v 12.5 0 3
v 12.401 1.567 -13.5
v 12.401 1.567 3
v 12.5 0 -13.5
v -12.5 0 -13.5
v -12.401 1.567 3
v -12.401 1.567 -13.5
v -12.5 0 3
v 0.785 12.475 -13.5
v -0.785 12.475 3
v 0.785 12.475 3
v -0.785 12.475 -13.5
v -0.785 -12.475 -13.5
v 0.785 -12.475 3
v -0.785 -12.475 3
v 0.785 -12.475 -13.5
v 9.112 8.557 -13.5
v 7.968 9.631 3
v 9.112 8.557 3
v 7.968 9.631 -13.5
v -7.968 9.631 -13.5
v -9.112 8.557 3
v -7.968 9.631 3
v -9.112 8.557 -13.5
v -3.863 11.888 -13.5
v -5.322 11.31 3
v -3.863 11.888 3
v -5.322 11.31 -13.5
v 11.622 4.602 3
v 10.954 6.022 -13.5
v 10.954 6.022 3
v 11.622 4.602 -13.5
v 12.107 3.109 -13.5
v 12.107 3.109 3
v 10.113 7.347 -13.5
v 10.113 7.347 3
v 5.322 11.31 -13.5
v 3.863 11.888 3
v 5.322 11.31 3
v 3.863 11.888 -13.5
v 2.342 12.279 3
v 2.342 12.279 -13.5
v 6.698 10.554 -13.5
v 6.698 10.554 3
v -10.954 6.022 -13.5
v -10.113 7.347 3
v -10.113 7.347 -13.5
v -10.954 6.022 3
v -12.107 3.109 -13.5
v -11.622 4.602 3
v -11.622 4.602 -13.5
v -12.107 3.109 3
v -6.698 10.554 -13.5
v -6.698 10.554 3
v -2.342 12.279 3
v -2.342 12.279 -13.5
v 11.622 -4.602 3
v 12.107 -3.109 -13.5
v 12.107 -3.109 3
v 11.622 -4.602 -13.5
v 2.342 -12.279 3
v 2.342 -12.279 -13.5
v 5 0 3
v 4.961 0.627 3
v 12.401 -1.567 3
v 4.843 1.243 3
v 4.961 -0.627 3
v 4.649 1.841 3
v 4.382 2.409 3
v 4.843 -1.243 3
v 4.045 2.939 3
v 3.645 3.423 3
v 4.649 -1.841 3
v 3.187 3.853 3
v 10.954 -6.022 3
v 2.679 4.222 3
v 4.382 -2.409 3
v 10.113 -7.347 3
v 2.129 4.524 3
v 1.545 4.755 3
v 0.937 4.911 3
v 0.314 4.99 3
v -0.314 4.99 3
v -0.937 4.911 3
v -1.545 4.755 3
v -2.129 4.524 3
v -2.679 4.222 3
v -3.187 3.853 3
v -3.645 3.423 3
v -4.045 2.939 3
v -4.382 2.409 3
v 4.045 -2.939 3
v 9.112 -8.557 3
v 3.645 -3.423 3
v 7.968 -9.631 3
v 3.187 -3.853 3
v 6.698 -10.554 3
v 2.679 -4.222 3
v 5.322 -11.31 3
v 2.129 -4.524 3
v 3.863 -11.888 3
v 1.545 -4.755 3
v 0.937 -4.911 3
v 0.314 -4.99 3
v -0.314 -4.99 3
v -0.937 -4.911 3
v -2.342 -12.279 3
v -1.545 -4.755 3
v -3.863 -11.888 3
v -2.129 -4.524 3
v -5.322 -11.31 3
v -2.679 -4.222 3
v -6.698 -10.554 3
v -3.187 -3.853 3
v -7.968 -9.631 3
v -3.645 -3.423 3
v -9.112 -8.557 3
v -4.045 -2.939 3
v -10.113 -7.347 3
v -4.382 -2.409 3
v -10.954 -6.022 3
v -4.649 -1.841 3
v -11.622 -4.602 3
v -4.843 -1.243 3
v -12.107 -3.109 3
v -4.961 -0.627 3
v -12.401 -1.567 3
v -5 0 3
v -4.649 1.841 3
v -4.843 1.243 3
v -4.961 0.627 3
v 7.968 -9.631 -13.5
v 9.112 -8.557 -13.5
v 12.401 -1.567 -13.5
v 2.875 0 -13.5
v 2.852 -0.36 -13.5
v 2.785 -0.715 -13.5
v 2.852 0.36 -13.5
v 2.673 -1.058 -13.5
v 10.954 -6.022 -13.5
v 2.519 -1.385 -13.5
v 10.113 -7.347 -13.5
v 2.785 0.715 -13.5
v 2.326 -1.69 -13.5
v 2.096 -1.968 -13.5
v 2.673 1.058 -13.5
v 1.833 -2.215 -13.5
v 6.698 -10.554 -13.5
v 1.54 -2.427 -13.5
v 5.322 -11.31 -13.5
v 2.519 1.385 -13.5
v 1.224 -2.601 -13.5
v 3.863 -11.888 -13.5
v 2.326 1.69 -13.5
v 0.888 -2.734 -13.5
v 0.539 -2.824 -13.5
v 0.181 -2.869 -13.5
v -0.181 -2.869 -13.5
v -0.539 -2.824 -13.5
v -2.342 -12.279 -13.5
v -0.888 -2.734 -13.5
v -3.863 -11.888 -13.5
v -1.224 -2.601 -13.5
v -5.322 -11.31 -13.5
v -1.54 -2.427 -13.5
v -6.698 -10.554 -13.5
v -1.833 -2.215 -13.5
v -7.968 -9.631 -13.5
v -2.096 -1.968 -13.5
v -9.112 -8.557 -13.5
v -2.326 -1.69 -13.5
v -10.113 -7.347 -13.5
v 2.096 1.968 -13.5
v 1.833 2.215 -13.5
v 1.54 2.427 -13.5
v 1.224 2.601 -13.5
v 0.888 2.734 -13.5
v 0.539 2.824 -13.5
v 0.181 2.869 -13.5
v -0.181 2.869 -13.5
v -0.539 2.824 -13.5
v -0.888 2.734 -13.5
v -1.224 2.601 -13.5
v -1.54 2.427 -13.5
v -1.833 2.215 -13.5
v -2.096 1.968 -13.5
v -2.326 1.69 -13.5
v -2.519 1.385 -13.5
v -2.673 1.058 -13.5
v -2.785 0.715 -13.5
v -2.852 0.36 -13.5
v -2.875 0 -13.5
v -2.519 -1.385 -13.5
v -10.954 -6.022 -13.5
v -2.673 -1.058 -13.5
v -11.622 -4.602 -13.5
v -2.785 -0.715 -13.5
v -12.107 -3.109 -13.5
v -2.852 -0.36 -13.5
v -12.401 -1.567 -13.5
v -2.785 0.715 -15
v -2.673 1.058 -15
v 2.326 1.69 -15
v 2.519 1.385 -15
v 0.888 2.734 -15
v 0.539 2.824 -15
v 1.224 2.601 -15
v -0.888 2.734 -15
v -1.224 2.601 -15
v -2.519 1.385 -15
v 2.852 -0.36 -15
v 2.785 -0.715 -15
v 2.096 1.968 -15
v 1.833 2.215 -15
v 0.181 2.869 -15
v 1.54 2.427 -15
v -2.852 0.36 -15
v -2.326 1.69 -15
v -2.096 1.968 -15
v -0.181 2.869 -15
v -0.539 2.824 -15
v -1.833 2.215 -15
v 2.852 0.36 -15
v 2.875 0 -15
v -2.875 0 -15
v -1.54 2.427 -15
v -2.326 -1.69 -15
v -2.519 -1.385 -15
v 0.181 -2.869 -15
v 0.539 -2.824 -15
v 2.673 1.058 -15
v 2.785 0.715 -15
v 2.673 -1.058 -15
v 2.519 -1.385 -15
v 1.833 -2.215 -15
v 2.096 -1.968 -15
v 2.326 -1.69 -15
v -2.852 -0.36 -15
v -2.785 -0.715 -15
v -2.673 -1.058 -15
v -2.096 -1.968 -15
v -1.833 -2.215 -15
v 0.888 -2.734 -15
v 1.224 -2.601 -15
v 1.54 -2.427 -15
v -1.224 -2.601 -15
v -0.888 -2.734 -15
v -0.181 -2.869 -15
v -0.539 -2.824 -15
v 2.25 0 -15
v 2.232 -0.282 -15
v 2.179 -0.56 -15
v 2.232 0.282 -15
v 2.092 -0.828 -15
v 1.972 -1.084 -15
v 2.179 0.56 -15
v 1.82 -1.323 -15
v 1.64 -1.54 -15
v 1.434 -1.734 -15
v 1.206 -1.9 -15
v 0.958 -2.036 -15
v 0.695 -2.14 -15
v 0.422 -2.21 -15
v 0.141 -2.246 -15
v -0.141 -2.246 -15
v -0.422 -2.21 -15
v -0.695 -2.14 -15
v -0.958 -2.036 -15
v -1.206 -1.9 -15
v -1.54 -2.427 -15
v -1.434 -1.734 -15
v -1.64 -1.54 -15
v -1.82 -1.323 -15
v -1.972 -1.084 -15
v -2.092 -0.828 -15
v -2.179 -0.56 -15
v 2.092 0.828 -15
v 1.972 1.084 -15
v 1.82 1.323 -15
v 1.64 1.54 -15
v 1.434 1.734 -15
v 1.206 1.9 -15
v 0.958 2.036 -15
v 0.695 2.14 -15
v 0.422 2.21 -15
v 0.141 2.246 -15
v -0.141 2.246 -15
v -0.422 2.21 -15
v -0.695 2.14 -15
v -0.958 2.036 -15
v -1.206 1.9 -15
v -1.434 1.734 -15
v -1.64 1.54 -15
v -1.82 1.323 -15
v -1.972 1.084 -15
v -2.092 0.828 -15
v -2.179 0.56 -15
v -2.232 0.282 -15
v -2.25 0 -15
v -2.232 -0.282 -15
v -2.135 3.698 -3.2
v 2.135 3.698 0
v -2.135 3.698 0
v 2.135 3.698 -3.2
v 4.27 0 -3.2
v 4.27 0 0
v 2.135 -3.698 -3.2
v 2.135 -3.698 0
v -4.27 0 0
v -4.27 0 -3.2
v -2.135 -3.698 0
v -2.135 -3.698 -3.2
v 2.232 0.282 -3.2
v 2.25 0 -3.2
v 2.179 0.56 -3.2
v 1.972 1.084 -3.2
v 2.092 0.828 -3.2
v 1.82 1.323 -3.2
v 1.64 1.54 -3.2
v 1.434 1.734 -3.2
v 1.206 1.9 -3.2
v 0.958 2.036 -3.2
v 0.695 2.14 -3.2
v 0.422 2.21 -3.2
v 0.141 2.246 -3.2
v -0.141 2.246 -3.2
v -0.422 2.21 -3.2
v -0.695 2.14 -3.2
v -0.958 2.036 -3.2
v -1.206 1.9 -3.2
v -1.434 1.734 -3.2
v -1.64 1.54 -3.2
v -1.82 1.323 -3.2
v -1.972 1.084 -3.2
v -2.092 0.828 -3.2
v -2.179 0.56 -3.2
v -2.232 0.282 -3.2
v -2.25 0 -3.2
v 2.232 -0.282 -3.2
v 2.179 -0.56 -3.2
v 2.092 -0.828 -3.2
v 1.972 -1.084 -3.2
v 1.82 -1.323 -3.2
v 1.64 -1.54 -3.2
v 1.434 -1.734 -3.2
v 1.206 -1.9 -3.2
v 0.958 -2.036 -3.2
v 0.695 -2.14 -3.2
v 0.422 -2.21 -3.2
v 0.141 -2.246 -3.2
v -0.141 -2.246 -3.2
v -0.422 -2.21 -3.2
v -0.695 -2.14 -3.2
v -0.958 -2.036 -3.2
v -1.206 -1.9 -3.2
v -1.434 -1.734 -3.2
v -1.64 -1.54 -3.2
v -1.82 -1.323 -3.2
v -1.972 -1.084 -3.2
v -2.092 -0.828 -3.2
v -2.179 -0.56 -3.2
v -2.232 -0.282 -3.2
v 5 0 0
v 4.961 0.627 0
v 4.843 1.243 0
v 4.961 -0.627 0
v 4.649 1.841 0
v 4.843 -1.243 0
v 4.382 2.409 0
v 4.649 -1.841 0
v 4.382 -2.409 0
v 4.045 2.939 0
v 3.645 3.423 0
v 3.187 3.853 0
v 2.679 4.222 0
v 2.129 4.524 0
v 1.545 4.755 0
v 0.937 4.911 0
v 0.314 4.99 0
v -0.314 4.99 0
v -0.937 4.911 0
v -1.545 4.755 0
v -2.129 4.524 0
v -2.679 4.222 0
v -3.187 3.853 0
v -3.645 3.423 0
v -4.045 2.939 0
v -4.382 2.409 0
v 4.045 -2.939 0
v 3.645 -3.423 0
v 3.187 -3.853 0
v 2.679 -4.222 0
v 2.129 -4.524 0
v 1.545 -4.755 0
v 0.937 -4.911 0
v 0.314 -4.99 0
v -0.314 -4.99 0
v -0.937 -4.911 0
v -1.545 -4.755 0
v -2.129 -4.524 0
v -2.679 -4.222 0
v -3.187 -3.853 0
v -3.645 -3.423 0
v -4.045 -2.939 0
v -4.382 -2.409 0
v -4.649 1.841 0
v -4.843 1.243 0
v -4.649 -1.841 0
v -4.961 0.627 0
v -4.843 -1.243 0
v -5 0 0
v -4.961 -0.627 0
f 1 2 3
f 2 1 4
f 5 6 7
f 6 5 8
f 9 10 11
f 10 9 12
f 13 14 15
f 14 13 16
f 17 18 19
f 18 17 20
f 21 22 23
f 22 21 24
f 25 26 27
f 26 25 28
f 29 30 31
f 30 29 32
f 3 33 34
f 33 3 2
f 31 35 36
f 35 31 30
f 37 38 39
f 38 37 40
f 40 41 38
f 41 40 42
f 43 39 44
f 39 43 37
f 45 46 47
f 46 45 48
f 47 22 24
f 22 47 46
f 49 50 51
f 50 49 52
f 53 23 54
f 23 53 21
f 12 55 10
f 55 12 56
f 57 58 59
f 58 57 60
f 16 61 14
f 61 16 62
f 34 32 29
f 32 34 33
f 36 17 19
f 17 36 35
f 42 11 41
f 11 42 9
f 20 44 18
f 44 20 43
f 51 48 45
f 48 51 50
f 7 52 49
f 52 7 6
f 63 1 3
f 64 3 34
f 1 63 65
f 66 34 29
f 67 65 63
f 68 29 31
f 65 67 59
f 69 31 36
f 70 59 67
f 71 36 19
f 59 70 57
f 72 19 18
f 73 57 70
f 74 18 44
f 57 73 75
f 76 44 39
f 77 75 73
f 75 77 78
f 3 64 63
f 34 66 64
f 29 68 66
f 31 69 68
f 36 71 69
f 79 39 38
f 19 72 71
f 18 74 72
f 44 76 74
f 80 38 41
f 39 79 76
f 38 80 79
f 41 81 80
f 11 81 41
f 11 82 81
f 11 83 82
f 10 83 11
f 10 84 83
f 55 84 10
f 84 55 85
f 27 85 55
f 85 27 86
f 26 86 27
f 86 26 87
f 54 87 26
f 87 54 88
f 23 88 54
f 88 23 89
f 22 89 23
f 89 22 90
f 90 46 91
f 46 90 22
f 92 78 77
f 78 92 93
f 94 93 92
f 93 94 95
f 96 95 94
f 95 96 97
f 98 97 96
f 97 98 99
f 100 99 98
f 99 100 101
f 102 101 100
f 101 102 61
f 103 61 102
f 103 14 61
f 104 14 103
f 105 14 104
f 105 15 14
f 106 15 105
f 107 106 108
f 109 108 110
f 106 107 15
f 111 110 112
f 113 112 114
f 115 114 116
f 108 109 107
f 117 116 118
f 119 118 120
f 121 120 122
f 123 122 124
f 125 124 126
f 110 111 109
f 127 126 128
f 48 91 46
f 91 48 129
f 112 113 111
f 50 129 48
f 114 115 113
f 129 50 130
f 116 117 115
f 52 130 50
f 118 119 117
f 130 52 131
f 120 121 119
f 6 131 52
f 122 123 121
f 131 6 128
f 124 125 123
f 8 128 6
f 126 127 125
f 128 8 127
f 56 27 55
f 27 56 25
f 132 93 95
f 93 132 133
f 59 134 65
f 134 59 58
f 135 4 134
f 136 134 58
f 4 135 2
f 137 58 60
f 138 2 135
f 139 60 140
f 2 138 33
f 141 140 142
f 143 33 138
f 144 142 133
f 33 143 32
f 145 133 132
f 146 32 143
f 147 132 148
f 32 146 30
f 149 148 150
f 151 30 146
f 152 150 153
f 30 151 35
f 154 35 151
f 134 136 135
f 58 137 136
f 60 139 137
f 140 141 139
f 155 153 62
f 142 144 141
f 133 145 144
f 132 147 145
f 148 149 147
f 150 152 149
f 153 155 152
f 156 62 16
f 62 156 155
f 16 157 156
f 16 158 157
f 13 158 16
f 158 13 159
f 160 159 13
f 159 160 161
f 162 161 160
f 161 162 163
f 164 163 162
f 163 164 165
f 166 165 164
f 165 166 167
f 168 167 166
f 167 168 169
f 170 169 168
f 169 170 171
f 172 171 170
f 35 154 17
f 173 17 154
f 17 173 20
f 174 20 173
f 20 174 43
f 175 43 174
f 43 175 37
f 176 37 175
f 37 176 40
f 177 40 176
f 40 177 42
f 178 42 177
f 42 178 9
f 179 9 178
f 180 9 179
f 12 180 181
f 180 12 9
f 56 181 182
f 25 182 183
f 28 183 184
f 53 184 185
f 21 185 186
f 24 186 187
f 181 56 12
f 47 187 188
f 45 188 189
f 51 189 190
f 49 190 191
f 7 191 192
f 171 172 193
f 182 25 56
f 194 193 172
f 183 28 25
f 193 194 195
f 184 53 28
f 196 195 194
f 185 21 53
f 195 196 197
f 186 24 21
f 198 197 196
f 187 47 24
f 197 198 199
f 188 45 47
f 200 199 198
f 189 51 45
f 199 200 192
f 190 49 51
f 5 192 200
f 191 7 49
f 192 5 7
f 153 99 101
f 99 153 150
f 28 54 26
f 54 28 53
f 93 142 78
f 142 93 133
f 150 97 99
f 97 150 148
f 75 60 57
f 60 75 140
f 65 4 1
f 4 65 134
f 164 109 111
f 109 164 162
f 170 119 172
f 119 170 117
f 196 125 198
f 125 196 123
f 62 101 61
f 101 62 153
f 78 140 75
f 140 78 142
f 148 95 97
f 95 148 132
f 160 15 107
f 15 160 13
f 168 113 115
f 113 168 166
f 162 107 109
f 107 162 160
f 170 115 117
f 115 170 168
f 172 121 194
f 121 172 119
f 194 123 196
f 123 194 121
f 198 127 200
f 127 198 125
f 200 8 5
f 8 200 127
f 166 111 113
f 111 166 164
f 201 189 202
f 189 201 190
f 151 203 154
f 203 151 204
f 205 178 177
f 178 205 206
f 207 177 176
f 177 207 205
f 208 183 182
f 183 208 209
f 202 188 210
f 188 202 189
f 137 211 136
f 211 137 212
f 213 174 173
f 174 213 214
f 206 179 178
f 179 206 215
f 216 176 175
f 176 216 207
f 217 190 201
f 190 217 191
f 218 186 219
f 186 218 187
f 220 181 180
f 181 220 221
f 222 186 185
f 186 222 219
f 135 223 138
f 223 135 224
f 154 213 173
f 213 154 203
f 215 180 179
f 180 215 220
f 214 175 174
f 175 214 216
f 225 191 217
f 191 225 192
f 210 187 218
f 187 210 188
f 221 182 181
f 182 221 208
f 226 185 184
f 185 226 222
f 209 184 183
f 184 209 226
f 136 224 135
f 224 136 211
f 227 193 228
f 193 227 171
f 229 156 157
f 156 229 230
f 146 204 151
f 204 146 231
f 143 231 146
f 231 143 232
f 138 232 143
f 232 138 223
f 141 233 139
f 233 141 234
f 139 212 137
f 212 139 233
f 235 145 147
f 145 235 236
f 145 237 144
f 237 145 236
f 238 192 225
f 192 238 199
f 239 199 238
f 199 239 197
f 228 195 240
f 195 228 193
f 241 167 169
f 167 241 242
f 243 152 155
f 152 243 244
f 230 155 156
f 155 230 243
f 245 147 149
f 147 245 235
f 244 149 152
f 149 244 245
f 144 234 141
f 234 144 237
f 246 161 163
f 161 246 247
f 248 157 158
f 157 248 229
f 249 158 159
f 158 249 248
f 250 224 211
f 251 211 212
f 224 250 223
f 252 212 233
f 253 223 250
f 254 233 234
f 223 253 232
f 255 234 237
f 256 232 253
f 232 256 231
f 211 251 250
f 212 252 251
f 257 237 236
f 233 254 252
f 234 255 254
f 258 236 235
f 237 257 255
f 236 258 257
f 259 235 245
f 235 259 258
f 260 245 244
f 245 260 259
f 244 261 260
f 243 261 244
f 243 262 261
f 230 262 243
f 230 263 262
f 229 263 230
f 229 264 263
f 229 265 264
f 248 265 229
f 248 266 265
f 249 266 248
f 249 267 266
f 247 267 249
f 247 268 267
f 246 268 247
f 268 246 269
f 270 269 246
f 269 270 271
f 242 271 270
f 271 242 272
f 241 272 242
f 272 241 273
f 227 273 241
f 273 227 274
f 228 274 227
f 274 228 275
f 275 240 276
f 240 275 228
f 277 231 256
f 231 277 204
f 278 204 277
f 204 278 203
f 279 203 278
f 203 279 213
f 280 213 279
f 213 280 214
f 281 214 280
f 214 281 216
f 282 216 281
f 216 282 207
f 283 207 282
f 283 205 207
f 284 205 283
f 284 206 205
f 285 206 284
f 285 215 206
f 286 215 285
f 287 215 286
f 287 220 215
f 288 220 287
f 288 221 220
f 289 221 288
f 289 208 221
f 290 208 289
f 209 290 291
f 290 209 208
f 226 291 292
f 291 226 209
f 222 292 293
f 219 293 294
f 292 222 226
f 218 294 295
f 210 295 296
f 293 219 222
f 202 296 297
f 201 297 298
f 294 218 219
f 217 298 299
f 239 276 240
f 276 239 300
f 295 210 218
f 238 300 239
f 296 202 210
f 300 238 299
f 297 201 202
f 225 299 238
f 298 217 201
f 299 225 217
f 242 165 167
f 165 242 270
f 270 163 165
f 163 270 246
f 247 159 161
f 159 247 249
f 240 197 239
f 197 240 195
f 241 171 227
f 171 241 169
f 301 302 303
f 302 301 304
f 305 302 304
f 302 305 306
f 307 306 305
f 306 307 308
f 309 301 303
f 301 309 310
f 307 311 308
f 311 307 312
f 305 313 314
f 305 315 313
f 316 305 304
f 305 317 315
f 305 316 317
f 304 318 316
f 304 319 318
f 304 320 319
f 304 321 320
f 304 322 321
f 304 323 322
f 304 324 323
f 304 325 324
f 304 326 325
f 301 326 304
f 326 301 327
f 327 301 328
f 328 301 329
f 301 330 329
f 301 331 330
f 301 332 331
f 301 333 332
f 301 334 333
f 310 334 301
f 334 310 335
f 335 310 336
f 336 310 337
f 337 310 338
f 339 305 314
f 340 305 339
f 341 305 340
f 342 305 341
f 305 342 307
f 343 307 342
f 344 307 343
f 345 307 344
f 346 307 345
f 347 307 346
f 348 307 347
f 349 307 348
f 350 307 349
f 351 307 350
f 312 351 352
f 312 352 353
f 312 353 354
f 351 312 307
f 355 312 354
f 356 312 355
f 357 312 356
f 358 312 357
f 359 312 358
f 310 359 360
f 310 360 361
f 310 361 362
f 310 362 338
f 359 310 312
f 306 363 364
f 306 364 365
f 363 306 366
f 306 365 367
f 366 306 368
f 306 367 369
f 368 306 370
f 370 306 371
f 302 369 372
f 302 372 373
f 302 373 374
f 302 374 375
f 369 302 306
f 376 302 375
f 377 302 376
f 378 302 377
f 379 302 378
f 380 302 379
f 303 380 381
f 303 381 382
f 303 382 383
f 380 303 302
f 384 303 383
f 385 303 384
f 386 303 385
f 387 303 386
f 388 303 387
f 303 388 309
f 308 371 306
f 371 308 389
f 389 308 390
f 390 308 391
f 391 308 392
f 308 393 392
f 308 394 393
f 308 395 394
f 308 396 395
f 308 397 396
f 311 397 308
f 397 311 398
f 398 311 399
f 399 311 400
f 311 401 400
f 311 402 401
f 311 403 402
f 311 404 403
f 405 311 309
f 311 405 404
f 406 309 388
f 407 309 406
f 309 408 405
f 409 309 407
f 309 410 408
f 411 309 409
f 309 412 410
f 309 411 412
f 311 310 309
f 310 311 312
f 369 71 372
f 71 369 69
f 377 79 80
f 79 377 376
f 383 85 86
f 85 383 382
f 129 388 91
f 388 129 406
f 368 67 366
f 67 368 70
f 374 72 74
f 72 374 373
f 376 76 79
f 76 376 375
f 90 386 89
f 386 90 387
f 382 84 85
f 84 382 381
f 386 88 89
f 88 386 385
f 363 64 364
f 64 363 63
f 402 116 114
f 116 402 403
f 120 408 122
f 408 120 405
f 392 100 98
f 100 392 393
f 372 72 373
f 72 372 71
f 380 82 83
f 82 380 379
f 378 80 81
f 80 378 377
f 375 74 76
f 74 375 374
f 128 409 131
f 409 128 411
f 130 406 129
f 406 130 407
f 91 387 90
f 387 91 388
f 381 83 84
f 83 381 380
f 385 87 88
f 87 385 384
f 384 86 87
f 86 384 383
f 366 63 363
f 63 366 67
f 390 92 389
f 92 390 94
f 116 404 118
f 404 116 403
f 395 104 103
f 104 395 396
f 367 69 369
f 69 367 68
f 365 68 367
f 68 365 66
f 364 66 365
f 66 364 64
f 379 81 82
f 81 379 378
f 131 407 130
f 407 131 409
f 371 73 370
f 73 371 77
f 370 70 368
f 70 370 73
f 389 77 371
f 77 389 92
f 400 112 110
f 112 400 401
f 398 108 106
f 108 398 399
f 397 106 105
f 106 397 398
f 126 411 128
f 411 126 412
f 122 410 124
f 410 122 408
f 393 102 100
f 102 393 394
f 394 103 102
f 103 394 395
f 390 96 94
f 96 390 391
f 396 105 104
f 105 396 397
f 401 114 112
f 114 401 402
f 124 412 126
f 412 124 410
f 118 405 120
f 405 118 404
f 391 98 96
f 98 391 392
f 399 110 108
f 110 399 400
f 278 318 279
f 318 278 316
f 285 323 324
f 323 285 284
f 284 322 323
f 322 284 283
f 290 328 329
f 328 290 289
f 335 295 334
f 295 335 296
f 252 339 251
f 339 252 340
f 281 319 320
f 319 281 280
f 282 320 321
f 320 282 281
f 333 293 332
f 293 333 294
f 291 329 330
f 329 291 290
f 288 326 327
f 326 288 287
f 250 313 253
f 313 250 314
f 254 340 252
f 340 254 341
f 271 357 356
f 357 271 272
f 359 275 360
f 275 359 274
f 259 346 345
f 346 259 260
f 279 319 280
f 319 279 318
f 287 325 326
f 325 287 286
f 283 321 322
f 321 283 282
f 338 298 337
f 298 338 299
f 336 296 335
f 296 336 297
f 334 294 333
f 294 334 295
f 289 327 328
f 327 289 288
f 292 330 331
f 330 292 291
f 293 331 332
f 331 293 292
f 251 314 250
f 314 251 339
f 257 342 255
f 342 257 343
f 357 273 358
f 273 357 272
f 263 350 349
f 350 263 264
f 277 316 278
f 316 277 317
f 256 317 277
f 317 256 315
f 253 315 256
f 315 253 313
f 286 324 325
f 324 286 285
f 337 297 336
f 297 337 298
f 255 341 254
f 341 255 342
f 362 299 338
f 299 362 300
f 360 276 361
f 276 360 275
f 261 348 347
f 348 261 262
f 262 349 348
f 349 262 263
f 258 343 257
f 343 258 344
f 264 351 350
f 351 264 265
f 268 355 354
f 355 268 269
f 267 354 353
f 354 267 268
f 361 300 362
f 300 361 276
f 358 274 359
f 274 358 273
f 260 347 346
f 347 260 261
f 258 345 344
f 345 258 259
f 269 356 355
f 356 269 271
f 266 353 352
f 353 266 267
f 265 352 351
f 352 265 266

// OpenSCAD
$fn = 50;

difference() {
	union() {
		translate(v = [0, 0, -13.5]) {
			cylinder(h = 16.5, r = 12.5);
		}
		#translate(v = [0, 0, -15.0]) {
			cylinder(h = 15, r = 2.875);
		}
	}
	union() {
		translate(v = [0, 0, 0]) {
			rotate(a = [0, 0, 0]) {
				difference() {
					union() {
						translate(v = [0, 0, -3.2]) {
							linear_extrude(height = 3.2) {
								polygon(points = [[4.2698, 0.0], [2.1349000000000005, 3.697755269078796], [-2.134899999999999, 3.6977552690787965], [-4.2698, 5.228996902999369e-16], [-2.134900000000002, -3.6977552690787956], [2.1348999999999974, -3.697755269078798]]);
							}
						}
					}
					union();
				}
			}
		}
		#cylinder(h = 3, r = 5.0);
		#translate(v = [0, 0, -100.0]) {
			cylinder(h = 200, r = 2.25);
		}
	}
}
